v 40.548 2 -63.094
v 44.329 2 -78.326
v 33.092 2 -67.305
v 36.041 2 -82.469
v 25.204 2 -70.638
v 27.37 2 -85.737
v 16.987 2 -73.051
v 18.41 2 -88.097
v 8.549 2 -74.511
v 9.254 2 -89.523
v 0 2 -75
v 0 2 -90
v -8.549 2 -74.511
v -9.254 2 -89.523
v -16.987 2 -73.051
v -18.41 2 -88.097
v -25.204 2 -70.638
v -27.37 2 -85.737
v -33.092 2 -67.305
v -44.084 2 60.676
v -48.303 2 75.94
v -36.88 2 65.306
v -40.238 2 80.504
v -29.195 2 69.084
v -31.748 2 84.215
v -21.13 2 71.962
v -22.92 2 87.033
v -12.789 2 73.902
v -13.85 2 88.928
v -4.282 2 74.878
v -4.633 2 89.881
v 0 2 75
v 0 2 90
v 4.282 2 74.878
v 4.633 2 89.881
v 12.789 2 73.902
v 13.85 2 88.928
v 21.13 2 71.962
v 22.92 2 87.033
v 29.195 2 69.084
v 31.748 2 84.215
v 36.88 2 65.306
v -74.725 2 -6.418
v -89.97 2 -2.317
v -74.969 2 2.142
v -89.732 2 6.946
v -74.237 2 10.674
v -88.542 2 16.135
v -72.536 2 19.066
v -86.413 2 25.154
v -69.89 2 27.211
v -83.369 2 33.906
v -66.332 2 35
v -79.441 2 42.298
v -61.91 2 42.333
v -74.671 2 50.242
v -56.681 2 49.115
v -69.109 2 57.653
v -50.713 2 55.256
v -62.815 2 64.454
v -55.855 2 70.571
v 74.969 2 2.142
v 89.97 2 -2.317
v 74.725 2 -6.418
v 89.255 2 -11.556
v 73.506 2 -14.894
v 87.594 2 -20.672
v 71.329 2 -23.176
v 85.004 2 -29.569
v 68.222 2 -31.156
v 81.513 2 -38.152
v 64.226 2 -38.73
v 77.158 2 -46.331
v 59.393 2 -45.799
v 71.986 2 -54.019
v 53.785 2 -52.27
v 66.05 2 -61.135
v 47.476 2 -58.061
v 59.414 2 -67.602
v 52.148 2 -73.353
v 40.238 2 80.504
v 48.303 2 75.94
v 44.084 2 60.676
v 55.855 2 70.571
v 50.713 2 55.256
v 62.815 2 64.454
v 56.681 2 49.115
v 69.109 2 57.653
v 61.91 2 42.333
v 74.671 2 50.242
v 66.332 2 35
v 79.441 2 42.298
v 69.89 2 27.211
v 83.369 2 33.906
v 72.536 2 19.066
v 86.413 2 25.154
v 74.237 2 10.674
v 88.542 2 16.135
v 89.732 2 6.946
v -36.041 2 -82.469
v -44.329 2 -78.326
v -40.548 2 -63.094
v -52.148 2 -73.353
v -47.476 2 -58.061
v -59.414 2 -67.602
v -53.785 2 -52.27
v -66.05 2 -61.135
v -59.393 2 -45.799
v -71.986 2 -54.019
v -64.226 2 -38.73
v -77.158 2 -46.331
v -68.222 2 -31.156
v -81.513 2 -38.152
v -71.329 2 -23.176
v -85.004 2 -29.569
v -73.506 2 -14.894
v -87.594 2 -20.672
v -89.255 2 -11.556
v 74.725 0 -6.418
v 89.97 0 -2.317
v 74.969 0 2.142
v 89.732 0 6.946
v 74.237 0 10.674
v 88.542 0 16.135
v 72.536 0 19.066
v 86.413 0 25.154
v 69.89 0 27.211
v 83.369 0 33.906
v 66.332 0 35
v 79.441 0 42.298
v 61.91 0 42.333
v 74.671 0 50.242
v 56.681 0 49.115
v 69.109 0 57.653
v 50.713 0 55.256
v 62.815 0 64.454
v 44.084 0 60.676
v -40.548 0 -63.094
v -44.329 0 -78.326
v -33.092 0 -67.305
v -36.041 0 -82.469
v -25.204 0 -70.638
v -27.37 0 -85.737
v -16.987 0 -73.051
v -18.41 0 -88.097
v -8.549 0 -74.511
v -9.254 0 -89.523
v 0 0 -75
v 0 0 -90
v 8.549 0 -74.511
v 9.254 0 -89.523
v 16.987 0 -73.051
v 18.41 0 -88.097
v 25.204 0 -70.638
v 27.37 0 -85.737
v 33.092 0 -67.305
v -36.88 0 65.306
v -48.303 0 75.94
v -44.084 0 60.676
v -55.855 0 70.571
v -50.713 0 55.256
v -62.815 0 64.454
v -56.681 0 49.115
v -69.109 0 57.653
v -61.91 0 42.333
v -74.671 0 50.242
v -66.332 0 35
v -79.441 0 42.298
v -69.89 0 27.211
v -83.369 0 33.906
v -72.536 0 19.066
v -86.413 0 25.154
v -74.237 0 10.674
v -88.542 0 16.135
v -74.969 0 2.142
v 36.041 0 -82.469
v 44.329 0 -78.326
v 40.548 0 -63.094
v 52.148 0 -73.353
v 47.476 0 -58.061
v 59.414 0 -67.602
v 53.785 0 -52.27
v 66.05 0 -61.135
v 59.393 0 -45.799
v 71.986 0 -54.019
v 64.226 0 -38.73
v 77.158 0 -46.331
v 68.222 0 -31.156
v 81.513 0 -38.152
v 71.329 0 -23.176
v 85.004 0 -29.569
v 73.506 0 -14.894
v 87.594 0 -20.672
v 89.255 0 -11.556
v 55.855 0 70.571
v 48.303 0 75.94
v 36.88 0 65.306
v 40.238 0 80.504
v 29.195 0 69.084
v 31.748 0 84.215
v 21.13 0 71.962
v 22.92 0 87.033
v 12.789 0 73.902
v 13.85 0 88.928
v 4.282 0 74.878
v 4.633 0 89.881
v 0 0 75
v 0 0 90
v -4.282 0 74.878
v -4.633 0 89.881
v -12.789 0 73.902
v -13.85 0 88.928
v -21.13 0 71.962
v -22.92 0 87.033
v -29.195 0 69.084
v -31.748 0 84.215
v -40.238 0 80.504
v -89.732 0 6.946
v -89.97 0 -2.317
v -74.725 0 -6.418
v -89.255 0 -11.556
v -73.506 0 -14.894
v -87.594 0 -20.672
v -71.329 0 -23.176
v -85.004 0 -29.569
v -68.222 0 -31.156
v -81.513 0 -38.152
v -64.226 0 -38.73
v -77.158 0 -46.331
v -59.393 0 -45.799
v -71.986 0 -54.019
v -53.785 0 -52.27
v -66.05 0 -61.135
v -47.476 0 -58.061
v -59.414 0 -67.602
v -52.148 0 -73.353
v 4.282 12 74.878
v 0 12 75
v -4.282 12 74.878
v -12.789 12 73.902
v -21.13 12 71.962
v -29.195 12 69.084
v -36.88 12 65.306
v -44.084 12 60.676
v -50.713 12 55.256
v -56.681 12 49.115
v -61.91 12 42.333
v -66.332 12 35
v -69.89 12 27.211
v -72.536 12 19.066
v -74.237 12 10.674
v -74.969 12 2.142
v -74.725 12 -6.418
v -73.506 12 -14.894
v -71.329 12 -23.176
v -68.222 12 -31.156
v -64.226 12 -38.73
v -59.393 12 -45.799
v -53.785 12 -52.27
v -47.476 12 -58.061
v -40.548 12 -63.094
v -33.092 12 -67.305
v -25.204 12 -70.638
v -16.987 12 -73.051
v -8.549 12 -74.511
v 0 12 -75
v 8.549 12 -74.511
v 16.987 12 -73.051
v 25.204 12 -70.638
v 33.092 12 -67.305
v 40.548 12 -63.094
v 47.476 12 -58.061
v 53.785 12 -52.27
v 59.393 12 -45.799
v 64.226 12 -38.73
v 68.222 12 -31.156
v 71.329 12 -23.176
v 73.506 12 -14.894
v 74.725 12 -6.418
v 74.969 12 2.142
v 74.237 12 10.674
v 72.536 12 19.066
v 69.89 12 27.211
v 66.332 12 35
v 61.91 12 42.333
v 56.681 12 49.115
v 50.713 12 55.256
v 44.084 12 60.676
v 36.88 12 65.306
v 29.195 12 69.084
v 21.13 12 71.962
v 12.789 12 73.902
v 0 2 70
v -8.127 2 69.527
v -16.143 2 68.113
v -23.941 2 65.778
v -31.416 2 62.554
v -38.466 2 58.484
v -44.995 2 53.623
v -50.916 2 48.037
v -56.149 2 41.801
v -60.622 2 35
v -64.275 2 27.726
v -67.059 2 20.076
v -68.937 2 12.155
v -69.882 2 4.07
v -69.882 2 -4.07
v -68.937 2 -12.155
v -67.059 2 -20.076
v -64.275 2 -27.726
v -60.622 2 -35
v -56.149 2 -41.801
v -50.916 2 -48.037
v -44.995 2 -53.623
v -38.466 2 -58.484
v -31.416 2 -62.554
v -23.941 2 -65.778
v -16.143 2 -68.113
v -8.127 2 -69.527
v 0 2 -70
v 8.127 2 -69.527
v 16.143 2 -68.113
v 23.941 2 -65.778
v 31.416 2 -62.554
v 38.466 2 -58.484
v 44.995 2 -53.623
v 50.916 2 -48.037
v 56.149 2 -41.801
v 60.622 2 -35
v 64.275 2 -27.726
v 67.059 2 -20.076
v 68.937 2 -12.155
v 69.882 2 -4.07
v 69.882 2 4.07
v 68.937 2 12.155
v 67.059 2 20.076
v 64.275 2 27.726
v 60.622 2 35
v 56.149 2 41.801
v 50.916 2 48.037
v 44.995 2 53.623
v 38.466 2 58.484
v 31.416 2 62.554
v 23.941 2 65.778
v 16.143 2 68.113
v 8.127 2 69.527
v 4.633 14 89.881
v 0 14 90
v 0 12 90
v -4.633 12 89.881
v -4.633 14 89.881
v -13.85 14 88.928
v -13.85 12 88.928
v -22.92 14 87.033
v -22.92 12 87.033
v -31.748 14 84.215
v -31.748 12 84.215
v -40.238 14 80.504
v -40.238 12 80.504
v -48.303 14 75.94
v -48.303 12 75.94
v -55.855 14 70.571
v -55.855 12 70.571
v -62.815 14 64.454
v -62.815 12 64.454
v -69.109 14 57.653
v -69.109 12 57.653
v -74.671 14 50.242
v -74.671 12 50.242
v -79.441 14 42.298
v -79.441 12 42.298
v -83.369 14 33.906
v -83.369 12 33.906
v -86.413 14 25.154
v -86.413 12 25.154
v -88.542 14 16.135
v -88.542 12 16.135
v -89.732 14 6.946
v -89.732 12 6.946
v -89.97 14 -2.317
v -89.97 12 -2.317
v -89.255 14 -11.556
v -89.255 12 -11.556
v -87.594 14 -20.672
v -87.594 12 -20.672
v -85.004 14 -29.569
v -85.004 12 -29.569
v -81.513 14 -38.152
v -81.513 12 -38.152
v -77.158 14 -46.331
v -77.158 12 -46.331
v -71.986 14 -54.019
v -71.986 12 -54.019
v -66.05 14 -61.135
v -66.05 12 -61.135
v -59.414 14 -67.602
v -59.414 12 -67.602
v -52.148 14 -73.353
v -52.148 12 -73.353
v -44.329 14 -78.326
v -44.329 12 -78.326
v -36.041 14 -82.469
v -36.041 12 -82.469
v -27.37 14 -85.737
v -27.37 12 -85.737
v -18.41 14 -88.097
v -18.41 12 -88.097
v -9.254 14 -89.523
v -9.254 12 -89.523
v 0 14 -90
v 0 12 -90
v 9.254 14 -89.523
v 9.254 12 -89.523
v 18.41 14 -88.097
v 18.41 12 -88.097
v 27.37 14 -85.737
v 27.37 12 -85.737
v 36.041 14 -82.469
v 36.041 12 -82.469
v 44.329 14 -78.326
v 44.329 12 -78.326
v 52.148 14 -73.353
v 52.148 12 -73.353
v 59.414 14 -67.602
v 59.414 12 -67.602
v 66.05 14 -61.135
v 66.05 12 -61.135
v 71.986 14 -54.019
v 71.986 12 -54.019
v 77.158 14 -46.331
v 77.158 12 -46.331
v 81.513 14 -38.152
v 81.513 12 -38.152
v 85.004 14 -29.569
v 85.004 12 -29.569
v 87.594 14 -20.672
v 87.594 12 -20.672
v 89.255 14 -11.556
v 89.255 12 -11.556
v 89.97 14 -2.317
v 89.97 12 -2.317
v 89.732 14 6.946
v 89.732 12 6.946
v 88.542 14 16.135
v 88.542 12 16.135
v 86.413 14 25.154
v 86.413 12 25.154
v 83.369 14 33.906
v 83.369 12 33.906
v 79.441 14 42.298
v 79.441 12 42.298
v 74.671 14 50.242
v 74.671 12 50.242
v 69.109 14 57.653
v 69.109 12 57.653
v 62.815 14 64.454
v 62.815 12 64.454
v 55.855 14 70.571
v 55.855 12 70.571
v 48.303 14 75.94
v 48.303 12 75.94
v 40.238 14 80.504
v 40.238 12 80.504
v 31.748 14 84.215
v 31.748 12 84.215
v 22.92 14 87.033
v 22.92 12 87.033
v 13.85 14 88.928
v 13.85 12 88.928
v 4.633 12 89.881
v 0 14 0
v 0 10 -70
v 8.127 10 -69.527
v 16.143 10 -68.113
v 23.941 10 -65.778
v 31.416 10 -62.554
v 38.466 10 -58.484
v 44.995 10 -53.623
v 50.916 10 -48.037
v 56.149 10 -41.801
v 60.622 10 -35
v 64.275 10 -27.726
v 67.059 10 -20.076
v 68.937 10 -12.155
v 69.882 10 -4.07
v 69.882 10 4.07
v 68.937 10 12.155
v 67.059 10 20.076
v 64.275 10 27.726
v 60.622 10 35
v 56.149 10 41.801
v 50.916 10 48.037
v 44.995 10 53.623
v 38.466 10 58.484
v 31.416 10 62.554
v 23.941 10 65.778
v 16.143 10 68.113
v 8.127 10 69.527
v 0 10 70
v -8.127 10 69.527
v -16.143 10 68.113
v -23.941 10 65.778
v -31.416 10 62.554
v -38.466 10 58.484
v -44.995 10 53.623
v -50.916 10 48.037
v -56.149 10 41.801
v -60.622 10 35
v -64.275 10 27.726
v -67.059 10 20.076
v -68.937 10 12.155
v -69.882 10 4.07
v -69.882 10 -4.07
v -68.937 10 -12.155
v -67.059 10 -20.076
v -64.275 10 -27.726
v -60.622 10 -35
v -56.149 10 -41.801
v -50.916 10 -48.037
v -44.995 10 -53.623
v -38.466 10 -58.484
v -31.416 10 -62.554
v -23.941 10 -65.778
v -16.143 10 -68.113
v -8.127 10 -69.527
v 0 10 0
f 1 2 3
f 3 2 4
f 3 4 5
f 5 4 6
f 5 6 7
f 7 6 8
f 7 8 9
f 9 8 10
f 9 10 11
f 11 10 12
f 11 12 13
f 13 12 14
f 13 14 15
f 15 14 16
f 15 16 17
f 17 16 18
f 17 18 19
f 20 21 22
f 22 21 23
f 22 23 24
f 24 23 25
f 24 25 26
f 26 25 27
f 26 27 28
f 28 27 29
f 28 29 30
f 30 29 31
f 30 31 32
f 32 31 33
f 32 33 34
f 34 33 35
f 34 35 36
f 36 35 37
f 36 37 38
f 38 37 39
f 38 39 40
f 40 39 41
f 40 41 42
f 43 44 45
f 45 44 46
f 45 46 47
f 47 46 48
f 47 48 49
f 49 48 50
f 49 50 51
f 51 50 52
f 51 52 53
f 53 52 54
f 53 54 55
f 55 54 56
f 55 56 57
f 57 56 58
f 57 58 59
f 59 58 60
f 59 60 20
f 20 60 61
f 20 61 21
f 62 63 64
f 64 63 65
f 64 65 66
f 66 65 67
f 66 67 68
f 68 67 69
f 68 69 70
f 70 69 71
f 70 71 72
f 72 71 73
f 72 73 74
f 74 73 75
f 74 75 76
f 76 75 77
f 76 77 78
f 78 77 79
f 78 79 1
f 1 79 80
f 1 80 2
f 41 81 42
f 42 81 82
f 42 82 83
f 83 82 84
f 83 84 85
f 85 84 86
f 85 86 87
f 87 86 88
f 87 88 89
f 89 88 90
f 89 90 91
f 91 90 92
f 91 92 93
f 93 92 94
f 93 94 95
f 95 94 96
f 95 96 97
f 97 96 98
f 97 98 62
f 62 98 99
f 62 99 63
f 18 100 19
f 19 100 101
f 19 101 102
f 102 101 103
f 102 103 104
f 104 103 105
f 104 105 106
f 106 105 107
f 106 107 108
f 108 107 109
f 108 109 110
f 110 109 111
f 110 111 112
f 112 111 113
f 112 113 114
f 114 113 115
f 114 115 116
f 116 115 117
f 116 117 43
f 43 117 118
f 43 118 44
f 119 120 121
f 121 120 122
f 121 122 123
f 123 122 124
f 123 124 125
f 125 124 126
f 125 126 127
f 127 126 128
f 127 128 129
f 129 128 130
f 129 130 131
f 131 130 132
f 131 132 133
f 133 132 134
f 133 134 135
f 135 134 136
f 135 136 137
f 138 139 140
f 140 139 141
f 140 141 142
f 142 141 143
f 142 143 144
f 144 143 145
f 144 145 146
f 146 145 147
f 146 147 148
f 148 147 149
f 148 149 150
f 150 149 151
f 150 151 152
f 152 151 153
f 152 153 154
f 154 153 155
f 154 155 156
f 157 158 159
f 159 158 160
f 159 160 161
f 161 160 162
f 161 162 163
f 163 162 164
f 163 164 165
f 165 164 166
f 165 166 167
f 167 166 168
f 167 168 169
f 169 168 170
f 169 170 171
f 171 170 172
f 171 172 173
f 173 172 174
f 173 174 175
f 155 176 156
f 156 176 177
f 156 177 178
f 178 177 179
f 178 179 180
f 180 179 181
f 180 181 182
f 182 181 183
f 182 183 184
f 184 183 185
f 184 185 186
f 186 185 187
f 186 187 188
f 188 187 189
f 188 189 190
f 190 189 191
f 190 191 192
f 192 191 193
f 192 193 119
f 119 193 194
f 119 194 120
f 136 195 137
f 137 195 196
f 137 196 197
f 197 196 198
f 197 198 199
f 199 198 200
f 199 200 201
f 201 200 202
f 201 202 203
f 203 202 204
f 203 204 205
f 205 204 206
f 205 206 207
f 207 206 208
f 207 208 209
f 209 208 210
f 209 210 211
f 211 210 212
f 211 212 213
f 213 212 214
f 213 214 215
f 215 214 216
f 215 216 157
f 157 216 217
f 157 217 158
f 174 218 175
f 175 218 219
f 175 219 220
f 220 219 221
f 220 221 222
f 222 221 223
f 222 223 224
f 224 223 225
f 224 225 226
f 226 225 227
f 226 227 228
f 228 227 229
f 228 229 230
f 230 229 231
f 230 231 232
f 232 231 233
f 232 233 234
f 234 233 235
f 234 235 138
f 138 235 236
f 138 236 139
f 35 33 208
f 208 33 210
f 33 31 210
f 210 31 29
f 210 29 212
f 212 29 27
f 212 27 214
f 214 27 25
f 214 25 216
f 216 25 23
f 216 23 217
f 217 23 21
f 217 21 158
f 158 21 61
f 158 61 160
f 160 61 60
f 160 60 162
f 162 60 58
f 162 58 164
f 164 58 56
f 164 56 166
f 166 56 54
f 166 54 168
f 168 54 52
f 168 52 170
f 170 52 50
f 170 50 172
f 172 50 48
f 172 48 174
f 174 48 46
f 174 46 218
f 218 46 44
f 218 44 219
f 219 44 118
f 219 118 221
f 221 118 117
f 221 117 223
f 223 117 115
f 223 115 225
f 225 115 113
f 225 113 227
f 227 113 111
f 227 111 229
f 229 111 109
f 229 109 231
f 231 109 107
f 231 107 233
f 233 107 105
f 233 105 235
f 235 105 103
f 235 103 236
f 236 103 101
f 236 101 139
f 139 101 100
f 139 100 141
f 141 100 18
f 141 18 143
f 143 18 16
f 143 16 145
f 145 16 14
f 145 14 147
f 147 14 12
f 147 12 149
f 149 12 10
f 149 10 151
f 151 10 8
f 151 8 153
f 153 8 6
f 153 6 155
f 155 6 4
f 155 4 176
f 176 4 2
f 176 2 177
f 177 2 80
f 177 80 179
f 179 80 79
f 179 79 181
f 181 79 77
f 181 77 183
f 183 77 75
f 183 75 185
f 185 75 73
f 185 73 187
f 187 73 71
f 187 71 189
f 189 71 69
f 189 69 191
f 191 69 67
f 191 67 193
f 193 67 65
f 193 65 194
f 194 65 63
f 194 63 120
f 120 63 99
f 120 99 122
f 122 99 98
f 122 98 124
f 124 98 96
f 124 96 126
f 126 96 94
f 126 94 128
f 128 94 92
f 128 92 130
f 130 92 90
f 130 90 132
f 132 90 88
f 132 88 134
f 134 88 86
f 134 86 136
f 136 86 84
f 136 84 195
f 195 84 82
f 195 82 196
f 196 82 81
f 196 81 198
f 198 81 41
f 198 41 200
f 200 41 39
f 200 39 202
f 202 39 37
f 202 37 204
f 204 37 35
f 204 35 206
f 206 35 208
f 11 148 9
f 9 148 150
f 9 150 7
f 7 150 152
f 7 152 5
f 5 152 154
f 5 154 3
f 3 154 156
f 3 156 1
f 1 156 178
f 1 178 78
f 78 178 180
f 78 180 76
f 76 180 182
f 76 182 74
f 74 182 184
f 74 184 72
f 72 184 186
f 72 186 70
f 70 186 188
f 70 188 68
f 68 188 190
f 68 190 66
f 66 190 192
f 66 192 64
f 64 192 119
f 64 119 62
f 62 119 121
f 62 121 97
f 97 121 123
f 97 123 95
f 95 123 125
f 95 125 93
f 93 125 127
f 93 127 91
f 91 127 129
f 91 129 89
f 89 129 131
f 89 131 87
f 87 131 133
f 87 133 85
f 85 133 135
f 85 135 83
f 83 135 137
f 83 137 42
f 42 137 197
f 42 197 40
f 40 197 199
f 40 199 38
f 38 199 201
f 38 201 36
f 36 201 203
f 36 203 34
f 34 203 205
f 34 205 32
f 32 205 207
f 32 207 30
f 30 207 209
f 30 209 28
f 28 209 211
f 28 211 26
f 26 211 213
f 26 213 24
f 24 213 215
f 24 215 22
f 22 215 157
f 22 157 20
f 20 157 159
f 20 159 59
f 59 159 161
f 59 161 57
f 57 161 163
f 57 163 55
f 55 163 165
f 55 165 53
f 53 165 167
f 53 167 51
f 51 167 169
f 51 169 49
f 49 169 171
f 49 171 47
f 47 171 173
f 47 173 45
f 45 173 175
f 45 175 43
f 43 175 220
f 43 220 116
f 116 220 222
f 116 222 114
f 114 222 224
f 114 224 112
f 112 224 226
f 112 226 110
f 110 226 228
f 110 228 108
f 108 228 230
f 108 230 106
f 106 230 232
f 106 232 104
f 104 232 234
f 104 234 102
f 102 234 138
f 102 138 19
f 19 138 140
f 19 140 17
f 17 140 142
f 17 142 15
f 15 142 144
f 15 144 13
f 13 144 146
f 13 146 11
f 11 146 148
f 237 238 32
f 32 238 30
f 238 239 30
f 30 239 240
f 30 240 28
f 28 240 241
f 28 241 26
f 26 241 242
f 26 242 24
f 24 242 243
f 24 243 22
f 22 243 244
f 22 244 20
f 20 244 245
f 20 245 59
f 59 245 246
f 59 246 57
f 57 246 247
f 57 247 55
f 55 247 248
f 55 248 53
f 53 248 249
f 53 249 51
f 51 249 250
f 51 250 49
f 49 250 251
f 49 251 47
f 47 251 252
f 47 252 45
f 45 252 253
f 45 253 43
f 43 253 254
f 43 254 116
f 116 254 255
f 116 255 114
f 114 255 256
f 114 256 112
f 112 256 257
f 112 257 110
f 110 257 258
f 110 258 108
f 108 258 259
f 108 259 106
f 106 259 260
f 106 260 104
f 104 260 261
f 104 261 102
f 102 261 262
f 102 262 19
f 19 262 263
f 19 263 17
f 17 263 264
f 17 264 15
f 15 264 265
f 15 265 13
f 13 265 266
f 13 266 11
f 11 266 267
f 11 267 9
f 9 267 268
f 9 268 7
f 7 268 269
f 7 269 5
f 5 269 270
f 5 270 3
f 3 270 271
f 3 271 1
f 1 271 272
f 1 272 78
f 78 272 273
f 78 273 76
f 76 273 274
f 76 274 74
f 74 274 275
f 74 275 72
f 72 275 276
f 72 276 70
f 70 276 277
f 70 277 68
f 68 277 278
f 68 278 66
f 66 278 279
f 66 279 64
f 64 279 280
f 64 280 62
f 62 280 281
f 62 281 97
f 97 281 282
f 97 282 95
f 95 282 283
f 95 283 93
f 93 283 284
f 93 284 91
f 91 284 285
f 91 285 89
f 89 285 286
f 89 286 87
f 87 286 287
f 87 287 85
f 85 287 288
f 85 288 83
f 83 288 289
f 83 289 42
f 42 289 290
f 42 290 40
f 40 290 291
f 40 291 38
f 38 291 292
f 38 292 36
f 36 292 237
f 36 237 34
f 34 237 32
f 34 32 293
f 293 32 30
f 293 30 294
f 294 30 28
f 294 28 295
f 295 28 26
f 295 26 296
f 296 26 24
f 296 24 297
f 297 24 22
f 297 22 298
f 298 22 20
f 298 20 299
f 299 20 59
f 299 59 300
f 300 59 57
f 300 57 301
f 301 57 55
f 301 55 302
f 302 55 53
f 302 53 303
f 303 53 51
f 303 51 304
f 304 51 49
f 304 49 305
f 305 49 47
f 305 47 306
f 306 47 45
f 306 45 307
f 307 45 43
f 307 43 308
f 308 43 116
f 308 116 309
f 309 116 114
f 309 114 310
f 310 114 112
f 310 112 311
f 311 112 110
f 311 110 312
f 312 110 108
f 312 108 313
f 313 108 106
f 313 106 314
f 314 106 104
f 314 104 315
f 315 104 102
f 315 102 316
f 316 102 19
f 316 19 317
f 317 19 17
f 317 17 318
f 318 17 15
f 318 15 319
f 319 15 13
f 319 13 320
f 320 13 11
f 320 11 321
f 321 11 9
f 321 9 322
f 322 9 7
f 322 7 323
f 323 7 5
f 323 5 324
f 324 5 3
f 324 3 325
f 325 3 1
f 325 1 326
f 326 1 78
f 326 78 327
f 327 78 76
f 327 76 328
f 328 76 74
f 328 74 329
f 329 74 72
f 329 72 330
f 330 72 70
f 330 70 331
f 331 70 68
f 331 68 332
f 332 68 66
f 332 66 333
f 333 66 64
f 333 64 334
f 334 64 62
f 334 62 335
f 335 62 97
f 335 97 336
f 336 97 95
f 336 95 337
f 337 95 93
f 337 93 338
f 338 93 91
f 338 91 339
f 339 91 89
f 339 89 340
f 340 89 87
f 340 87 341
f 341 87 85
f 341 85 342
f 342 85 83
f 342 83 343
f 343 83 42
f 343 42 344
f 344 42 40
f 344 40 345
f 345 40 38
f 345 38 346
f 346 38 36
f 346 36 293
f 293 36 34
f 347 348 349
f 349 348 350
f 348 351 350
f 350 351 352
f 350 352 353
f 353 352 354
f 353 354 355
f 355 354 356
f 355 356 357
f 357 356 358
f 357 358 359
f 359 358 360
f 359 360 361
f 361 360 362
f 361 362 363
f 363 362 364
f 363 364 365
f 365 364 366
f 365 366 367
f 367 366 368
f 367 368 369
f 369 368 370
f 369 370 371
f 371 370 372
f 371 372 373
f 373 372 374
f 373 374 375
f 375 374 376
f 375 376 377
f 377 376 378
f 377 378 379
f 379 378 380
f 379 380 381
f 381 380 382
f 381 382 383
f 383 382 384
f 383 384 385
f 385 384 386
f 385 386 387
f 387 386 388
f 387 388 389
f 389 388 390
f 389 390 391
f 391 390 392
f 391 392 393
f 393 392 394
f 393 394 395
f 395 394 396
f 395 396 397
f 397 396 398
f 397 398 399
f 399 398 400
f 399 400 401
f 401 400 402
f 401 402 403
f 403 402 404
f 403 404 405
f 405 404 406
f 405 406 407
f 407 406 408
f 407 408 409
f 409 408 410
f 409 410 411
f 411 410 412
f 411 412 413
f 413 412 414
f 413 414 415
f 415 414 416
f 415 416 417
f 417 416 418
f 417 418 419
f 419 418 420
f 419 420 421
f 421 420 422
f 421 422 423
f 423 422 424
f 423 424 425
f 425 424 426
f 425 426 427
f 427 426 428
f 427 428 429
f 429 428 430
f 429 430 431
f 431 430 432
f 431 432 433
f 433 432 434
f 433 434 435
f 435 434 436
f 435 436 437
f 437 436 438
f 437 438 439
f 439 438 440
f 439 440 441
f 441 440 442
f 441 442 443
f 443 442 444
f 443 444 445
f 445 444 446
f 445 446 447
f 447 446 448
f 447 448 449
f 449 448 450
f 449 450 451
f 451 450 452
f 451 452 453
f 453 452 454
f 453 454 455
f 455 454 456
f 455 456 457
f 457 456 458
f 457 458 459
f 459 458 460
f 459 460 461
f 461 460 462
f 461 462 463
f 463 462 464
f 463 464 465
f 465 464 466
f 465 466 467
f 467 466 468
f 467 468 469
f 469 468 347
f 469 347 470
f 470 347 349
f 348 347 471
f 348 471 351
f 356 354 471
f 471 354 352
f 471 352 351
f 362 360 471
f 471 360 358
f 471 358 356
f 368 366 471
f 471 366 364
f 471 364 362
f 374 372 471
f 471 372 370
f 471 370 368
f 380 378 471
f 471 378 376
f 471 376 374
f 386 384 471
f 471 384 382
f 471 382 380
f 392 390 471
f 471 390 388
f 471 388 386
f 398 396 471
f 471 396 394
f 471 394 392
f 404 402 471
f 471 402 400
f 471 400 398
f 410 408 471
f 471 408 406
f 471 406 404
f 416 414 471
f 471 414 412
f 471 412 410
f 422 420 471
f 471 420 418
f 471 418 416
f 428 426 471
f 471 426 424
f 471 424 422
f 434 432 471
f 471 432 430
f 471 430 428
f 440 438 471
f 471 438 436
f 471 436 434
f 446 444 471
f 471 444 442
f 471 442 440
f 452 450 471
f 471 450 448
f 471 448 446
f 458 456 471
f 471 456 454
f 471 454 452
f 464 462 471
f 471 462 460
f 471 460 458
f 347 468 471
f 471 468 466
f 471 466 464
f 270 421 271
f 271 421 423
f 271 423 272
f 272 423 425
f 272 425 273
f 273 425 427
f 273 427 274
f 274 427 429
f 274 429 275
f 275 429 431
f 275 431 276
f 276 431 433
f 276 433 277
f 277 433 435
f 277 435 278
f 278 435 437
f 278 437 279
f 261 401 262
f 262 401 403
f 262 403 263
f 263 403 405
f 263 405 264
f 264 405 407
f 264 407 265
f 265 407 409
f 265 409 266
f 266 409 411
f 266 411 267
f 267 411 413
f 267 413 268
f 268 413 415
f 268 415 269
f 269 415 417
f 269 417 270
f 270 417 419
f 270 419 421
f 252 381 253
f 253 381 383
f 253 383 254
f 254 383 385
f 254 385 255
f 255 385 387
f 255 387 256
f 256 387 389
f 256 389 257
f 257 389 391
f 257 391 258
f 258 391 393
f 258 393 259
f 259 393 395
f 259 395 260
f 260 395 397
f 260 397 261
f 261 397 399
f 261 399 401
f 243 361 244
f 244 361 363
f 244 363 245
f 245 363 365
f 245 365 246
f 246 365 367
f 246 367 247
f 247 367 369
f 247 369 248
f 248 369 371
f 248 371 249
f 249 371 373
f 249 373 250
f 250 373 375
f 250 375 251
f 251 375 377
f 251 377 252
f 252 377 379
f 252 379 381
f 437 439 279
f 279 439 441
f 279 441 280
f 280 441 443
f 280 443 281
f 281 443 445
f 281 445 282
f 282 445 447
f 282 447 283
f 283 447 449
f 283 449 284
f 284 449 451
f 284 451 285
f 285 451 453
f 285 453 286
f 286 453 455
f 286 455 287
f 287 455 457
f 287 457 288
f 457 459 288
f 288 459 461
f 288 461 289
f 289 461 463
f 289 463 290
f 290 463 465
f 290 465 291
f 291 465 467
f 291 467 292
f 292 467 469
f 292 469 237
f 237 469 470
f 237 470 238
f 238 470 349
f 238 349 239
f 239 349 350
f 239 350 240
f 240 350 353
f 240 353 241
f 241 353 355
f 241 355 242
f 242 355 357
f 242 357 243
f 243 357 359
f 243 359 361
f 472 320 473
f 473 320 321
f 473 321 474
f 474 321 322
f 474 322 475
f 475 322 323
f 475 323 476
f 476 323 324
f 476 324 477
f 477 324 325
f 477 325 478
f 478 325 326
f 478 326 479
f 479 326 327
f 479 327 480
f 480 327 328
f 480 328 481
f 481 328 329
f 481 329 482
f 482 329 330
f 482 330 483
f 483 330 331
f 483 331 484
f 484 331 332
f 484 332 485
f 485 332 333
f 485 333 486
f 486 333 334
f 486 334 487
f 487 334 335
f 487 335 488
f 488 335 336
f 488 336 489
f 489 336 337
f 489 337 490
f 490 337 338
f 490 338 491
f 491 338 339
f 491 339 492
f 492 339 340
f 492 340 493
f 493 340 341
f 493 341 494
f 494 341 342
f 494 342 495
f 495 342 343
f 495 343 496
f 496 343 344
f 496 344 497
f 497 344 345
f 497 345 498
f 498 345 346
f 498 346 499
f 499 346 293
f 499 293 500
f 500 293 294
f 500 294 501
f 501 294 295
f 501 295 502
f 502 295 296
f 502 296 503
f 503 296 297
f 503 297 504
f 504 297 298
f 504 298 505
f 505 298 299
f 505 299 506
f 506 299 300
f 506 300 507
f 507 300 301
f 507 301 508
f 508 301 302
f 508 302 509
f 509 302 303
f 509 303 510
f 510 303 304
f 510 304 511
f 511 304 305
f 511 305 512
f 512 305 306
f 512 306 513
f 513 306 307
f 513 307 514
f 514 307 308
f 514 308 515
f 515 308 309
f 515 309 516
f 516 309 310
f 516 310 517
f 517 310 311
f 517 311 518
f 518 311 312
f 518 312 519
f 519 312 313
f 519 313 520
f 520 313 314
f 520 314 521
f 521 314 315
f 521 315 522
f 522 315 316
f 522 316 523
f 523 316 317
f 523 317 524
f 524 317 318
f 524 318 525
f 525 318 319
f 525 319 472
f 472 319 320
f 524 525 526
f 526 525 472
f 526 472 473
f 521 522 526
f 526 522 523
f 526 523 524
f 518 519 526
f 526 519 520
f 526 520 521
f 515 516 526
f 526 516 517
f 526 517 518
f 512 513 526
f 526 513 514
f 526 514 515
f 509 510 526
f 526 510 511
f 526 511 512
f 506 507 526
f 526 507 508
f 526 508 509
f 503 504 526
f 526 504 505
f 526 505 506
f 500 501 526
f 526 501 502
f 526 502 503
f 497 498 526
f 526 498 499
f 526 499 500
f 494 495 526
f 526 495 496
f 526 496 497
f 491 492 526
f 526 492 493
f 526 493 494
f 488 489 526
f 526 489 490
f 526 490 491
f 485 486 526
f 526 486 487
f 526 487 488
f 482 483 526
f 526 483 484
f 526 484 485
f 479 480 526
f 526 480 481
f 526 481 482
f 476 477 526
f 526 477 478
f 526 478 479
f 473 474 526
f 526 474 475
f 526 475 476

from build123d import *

# Parameters (mm, degrees)
SKETCH1_R           = 90
SKETCH1_R_2         = 75
BOSS_EXTRUDE1_DEPTH = 2
SKETCH2_R           = 75
BOSS_EXTRUDE2_DEPTH = 10
SKETCH4_R           = 90
BOSS_EXTRUDE3_DEPTH = 2
SKETCH5_R           = 70
CUT_EXTRUDE2_DEPTH  = 8


with BuildPart() as part:
    # Sketch1 → Boss-Extrude1 (new body)
    with BuildSketch(Plane(origin=(0, 0, 0), x_dir=(1, 0, 0), z_dir=(0, 1, 0))):
        Circle(SKETCH1_R)
        Circle(SKETCH1_R_2, mode=Mode.SUBTRACT)
    extrude(amount=BOSS_EXTRUDE1_DEPTH)


with BuildPart() as body_2:
    # Sketch2 → Boss-Extrude2 (new body)
    with BuildSketch(Plane(origin=(0, 2, 0), x_dir=(1, 0, 0), z_dir=(0, 1, 0))):
        Circle(SKETCH2_R)
    extrude(amount=BOSS_EXTRUDE2_DEPTH)

    # Sketch4 → Boss-Extrude3 (add)
    with BuildSketch(Plane(origin=(0, 12, 0), x_dir=(1, 0, 0), z_dir=(0, 1, 0))):
        Circle(SKETCH4_R)
    extrude(amount=BOSS_EXTRUDE3_DEPTH)

    # Sketch5 → Cut-Extrude2 (cut)
    with BuildSketch(Plane.XZ.offset(-2)):
        Circle(SKETCH5_R)
    extrude(amount=-CUT_EXTRUDE2_DEPTH, mode=Mode.SUBTRACT)


solid = Compound([part.part, body_2.part])
